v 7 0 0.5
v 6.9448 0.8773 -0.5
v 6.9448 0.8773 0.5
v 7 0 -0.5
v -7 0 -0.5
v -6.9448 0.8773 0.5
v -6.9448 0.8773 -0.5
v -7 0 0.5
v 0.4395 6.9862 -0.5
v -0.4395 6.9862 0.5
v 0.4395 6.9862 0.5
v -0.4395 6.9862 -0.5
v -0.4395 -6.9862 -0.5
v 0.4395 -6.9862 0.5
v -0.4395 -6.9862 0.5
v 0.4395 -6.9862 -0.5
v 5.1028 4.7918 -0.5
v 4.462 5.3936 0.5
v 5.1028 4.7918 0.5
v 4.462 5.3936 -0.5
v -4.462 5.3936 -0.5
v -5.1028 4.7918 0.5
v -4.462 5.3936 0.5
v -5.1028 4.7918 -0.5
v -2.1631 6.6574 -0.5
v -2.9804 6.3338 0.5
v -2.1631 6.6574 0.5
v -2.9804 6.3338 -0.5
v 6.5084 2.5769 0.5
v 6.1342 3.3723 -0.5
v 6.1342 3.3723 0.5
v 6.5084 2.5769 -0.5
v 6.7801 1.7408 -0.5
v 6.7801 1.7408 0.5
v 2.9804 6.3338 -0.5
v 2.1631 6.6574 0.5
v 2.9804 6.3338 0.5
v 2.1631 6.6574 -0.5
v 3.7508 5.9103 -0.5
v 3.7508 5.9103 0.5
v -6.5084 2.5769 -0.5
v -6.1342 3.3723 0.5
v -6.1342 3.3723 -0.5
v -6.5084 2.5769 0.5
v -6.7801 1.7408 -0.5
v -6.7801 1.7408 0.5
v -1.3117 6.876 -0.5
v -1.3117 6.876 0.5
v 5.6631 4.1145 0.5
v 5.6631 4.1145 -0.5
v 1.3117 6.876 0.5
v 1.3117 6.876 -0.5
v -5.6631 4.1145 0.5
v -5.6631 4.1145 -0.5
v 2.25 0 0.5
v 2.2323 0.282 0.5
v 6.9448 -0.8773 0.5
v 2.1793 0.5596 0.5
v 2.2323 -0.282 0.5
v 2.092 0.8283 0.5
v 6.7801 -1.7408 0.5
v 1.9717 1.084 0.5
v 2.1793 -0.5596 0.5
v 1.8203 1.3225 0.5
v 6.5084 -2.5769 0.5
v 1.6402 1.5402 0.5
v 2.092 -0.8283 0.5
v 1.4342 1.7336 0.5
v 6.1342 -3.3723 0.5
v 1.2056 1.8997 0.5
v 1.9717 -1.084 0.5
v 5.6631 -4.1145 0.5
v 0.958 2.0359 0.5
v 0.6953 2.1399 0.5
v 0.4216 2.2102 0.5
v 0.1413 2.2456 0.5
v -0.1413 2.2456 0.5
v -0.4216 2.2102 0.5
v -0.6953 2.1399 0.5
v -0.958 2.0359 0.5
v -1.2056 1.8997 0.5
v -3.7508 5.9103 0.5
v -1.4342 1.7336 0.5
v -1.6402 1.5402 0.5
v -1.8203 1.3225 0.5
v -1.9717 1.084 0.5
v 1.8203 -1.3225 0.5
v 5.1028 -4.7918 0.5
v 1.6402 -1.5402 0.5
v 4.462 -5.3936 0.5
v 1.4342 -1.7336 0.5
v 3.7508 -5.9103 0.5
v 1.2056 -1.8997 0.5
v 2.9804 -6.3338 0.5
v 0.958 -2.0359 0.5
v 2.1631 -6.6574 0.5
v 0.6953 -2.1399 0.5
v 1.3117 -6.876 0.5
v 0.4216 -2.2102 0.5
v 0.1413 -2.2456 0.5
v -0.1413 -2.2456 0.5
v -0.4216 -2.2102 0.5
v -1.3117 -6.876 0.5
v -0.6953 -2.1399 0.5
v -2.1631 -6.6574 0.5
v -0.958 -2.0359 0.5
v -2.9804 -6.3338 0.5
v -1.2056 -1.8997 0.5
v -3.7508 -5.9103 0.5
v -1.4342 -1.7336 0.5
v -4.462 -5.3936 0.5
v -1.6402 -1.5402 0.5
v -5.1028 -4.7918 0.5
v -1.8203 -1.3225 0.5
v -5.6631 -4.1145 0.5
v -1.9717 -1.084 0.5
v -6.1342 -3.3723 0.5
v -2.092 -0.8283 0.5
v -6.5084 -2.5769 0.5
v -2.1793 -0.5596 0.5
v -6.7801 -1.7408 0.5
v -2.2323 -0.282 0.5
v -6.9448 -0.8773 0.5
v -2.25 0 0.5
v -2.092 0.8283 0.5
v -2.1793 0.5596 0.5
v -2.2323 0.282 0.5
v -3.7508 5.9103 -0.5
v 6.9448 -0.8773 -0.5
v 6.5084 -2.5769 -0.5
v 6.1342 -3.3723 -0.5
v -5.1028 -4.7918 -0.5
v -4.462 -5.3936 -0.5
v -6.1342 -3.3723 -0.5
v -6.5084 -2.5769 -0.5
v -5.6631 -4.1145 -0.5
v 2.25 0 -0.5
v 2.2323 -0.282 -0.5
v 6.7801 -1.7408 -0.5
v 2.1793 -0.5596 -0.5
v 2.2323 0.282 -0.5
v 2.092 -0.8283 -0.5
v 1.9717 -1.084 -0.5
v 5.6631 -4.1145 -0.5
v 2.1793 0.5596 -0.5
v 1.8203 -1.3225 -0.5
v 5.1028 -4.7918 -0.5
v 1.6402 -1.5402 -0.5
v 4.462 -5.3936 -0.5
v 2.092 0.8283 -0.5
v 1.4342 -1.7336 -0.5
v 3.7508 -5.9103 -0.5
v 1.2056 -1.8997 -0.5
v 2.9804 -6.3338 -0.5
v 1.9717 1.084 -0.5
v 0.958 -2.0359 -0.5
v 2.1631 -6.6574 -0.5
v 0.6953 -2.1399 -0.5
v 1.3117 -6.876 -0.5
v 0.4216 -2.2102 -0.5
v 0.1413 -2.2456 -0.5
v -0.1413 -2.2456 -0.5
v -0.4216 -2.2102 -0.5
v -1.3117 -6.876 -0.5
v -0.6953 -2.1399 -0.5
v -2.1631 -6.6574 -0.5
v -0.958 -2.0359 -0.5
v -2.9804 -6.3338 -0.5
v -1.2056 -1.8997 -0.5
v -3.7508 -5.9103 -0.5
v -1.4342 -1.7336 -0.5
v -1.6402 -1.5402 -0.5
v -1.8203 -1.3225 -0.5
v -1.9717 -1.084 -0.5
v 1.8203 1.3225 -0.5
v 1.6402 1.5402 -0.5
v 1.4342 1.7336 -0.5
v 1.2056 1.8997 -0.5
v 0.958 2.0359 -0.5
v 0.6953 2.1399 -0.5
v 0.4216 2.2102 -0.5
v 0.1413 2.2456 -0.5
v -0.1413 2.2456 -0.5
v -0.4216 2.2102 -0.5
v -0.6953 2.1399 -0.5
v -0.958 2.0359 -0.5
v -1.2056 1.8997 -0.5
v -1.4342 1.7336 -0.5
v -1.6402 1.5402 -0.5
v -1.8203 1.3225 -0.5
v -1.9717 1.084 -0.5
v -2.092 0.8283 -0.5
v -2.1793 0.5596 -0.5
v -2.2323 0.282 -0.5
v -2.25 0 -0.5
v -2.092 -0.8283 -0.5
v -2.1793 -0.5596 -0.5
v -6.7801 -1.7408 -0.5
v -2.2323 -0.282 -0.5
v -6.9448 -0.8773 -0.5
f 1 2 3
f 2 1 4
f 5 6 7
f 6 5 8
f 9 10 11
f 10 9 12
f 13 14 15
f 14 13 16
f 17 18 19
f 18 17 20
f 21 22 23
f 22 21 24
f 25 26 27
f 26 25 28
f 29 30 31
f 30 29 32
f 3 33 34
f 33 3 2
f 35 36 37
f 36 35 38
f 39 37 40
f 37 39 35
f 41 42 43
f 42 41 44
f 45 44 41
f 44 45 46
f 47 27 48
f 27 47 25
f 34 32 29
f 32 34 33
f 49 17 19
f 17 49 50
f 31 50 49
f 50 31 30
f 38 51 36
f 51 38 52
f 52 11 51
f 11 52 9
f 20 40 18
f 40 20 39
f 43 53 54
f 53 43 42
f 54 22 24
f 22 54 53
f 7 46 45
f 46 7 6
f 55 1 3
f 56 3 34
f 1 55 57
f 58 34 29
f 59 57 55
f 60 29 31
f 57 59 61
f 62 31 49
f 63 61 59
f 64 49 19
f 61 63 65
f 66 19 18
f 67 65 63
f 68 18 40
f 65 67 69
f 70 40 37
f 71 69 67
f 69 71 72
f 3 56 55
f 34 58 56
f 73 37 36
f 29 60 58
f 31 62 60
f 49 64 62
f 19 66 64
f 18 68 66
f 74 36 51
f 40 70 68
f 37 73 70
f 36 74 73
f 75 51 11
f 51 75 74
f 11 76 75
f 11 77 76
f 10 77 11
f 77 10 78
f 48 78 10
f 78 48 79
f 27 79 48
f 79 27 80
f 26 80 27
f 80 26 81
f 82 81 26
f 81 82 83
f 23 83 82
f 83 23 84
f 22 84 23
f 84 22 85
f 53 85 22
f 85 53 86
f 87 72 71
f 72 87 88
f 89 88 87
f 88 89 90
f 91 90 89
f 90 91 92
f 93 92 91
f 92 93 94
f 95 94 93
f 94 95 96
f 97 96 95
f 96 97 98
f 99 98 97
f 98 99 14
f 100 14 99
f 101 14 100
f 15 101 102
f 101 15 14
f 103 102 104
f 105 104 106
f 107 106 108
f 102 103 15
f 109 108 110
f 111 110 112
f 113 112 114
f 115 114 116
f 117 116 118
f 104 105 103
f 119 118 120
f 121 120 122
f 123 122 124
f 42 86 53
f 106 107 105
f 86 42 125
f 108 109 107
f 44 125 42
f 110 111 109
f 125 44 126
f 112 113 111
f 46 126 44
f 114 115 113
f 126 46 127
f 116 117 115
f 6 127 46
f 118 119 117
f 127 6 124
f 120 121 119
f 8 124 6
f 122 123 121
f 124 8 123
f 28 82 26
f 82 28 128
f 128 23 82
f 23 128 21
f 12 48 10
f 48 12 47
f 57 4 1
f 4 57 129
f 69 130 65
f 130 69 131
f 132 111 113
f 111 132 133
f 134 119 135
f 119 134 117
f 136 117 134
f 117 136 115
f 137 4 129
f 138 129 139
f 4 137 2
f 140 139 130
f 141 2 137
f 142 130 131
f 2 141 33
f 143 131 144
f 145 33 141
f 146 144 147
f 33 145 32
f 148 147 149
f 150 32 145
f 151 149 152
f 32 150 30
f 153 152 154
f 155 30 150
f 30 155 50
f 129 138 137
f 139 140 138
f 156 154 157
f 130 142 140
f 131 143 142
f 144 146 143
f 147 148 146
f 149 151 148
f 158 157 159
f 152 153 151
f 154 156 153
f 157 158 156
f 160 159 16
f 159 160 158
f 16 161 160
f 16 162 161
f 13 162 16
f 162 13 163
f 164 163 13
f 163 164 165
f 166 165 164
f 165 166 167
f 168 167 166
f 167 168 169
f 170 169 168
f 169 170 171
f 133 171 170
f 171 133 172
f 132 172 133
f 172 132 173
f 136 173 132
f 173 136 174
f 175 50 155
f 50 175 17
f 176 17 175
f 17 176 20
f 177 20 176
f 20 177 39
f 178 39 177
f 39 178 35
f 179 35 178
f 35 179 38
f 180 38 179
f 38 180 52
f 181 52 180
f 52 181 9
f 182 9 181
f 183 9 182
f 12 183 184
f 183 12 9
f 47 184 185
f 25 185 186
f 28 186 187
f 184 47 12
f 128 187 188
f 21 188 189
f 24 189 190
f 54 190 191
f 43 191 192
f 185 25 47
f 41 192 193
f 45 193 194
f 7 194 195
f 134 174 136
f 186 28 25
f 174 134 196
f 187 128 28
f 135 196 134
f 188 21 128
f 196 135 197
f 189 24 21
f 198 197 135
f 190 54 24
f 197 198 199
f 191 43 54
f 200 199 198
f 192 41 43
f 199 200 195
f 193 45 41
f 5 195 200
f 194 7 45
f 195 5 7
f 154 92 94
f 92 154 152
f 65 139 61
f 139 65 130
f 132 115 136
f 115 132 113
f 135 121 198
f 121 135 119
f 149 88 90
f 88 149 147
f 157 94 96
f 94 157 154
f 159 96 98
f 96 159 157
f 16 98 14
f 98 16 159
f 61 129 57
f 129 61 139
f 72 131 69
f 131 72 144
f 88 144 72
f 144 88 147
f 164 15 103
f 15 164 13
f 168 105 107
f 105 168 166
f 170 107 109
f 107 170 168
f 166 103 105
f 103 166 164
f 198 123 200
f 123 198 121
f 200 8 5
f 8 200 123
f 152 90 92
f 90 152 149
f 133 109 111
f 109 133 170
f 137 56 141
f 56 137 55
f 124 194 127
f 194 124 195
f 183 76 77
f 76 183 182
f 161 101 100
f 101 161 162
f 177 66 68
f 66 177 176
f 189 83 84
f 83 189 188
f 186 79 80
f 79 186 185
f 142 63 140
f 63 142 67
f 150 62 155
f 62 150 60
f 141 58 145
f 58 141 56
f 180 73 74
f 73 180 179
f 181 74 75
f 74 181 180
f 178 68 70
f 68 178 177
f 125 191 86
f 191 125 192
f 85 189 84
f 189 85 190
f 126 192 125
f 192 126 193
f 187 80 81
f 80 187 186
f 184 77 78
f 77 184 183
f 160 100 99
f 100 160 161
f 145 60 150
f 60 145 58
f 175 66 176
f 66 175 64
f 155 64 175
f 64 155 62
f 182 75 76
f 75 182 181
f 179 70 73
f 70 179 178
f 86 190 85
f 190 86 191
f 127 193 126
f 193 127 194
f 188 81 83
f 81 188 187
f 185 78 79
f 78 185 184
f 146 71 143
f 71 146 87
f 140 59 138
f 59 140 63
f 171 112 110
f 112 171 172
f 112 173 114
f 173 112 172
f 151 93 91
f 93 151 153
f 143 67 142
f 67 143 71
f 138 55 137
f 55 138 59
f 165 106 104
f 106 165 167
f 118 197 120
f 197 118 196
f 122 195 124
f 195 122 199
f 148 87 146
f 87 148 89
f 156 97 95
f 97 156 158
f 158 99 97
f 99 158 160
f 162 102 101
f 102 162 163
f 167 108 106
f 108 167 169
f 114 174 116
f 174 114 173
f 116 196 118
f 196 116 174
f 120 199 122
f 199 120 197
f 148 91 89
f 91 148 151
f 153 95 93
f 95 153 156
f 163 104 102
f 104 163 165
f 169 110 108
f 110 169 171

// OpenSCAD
$fn = 50;


difference() {
	union() {
		translate(v = [0, 0, -0.5000000000]) {
			cylinder(h = 1, r = 7.0000000000);
		}
	}
	union() {
		translate(v = [0, 0, -100.0000000000]) {
			cylinder(h = 200, r = 2.2500000000);
		}
	}
}
